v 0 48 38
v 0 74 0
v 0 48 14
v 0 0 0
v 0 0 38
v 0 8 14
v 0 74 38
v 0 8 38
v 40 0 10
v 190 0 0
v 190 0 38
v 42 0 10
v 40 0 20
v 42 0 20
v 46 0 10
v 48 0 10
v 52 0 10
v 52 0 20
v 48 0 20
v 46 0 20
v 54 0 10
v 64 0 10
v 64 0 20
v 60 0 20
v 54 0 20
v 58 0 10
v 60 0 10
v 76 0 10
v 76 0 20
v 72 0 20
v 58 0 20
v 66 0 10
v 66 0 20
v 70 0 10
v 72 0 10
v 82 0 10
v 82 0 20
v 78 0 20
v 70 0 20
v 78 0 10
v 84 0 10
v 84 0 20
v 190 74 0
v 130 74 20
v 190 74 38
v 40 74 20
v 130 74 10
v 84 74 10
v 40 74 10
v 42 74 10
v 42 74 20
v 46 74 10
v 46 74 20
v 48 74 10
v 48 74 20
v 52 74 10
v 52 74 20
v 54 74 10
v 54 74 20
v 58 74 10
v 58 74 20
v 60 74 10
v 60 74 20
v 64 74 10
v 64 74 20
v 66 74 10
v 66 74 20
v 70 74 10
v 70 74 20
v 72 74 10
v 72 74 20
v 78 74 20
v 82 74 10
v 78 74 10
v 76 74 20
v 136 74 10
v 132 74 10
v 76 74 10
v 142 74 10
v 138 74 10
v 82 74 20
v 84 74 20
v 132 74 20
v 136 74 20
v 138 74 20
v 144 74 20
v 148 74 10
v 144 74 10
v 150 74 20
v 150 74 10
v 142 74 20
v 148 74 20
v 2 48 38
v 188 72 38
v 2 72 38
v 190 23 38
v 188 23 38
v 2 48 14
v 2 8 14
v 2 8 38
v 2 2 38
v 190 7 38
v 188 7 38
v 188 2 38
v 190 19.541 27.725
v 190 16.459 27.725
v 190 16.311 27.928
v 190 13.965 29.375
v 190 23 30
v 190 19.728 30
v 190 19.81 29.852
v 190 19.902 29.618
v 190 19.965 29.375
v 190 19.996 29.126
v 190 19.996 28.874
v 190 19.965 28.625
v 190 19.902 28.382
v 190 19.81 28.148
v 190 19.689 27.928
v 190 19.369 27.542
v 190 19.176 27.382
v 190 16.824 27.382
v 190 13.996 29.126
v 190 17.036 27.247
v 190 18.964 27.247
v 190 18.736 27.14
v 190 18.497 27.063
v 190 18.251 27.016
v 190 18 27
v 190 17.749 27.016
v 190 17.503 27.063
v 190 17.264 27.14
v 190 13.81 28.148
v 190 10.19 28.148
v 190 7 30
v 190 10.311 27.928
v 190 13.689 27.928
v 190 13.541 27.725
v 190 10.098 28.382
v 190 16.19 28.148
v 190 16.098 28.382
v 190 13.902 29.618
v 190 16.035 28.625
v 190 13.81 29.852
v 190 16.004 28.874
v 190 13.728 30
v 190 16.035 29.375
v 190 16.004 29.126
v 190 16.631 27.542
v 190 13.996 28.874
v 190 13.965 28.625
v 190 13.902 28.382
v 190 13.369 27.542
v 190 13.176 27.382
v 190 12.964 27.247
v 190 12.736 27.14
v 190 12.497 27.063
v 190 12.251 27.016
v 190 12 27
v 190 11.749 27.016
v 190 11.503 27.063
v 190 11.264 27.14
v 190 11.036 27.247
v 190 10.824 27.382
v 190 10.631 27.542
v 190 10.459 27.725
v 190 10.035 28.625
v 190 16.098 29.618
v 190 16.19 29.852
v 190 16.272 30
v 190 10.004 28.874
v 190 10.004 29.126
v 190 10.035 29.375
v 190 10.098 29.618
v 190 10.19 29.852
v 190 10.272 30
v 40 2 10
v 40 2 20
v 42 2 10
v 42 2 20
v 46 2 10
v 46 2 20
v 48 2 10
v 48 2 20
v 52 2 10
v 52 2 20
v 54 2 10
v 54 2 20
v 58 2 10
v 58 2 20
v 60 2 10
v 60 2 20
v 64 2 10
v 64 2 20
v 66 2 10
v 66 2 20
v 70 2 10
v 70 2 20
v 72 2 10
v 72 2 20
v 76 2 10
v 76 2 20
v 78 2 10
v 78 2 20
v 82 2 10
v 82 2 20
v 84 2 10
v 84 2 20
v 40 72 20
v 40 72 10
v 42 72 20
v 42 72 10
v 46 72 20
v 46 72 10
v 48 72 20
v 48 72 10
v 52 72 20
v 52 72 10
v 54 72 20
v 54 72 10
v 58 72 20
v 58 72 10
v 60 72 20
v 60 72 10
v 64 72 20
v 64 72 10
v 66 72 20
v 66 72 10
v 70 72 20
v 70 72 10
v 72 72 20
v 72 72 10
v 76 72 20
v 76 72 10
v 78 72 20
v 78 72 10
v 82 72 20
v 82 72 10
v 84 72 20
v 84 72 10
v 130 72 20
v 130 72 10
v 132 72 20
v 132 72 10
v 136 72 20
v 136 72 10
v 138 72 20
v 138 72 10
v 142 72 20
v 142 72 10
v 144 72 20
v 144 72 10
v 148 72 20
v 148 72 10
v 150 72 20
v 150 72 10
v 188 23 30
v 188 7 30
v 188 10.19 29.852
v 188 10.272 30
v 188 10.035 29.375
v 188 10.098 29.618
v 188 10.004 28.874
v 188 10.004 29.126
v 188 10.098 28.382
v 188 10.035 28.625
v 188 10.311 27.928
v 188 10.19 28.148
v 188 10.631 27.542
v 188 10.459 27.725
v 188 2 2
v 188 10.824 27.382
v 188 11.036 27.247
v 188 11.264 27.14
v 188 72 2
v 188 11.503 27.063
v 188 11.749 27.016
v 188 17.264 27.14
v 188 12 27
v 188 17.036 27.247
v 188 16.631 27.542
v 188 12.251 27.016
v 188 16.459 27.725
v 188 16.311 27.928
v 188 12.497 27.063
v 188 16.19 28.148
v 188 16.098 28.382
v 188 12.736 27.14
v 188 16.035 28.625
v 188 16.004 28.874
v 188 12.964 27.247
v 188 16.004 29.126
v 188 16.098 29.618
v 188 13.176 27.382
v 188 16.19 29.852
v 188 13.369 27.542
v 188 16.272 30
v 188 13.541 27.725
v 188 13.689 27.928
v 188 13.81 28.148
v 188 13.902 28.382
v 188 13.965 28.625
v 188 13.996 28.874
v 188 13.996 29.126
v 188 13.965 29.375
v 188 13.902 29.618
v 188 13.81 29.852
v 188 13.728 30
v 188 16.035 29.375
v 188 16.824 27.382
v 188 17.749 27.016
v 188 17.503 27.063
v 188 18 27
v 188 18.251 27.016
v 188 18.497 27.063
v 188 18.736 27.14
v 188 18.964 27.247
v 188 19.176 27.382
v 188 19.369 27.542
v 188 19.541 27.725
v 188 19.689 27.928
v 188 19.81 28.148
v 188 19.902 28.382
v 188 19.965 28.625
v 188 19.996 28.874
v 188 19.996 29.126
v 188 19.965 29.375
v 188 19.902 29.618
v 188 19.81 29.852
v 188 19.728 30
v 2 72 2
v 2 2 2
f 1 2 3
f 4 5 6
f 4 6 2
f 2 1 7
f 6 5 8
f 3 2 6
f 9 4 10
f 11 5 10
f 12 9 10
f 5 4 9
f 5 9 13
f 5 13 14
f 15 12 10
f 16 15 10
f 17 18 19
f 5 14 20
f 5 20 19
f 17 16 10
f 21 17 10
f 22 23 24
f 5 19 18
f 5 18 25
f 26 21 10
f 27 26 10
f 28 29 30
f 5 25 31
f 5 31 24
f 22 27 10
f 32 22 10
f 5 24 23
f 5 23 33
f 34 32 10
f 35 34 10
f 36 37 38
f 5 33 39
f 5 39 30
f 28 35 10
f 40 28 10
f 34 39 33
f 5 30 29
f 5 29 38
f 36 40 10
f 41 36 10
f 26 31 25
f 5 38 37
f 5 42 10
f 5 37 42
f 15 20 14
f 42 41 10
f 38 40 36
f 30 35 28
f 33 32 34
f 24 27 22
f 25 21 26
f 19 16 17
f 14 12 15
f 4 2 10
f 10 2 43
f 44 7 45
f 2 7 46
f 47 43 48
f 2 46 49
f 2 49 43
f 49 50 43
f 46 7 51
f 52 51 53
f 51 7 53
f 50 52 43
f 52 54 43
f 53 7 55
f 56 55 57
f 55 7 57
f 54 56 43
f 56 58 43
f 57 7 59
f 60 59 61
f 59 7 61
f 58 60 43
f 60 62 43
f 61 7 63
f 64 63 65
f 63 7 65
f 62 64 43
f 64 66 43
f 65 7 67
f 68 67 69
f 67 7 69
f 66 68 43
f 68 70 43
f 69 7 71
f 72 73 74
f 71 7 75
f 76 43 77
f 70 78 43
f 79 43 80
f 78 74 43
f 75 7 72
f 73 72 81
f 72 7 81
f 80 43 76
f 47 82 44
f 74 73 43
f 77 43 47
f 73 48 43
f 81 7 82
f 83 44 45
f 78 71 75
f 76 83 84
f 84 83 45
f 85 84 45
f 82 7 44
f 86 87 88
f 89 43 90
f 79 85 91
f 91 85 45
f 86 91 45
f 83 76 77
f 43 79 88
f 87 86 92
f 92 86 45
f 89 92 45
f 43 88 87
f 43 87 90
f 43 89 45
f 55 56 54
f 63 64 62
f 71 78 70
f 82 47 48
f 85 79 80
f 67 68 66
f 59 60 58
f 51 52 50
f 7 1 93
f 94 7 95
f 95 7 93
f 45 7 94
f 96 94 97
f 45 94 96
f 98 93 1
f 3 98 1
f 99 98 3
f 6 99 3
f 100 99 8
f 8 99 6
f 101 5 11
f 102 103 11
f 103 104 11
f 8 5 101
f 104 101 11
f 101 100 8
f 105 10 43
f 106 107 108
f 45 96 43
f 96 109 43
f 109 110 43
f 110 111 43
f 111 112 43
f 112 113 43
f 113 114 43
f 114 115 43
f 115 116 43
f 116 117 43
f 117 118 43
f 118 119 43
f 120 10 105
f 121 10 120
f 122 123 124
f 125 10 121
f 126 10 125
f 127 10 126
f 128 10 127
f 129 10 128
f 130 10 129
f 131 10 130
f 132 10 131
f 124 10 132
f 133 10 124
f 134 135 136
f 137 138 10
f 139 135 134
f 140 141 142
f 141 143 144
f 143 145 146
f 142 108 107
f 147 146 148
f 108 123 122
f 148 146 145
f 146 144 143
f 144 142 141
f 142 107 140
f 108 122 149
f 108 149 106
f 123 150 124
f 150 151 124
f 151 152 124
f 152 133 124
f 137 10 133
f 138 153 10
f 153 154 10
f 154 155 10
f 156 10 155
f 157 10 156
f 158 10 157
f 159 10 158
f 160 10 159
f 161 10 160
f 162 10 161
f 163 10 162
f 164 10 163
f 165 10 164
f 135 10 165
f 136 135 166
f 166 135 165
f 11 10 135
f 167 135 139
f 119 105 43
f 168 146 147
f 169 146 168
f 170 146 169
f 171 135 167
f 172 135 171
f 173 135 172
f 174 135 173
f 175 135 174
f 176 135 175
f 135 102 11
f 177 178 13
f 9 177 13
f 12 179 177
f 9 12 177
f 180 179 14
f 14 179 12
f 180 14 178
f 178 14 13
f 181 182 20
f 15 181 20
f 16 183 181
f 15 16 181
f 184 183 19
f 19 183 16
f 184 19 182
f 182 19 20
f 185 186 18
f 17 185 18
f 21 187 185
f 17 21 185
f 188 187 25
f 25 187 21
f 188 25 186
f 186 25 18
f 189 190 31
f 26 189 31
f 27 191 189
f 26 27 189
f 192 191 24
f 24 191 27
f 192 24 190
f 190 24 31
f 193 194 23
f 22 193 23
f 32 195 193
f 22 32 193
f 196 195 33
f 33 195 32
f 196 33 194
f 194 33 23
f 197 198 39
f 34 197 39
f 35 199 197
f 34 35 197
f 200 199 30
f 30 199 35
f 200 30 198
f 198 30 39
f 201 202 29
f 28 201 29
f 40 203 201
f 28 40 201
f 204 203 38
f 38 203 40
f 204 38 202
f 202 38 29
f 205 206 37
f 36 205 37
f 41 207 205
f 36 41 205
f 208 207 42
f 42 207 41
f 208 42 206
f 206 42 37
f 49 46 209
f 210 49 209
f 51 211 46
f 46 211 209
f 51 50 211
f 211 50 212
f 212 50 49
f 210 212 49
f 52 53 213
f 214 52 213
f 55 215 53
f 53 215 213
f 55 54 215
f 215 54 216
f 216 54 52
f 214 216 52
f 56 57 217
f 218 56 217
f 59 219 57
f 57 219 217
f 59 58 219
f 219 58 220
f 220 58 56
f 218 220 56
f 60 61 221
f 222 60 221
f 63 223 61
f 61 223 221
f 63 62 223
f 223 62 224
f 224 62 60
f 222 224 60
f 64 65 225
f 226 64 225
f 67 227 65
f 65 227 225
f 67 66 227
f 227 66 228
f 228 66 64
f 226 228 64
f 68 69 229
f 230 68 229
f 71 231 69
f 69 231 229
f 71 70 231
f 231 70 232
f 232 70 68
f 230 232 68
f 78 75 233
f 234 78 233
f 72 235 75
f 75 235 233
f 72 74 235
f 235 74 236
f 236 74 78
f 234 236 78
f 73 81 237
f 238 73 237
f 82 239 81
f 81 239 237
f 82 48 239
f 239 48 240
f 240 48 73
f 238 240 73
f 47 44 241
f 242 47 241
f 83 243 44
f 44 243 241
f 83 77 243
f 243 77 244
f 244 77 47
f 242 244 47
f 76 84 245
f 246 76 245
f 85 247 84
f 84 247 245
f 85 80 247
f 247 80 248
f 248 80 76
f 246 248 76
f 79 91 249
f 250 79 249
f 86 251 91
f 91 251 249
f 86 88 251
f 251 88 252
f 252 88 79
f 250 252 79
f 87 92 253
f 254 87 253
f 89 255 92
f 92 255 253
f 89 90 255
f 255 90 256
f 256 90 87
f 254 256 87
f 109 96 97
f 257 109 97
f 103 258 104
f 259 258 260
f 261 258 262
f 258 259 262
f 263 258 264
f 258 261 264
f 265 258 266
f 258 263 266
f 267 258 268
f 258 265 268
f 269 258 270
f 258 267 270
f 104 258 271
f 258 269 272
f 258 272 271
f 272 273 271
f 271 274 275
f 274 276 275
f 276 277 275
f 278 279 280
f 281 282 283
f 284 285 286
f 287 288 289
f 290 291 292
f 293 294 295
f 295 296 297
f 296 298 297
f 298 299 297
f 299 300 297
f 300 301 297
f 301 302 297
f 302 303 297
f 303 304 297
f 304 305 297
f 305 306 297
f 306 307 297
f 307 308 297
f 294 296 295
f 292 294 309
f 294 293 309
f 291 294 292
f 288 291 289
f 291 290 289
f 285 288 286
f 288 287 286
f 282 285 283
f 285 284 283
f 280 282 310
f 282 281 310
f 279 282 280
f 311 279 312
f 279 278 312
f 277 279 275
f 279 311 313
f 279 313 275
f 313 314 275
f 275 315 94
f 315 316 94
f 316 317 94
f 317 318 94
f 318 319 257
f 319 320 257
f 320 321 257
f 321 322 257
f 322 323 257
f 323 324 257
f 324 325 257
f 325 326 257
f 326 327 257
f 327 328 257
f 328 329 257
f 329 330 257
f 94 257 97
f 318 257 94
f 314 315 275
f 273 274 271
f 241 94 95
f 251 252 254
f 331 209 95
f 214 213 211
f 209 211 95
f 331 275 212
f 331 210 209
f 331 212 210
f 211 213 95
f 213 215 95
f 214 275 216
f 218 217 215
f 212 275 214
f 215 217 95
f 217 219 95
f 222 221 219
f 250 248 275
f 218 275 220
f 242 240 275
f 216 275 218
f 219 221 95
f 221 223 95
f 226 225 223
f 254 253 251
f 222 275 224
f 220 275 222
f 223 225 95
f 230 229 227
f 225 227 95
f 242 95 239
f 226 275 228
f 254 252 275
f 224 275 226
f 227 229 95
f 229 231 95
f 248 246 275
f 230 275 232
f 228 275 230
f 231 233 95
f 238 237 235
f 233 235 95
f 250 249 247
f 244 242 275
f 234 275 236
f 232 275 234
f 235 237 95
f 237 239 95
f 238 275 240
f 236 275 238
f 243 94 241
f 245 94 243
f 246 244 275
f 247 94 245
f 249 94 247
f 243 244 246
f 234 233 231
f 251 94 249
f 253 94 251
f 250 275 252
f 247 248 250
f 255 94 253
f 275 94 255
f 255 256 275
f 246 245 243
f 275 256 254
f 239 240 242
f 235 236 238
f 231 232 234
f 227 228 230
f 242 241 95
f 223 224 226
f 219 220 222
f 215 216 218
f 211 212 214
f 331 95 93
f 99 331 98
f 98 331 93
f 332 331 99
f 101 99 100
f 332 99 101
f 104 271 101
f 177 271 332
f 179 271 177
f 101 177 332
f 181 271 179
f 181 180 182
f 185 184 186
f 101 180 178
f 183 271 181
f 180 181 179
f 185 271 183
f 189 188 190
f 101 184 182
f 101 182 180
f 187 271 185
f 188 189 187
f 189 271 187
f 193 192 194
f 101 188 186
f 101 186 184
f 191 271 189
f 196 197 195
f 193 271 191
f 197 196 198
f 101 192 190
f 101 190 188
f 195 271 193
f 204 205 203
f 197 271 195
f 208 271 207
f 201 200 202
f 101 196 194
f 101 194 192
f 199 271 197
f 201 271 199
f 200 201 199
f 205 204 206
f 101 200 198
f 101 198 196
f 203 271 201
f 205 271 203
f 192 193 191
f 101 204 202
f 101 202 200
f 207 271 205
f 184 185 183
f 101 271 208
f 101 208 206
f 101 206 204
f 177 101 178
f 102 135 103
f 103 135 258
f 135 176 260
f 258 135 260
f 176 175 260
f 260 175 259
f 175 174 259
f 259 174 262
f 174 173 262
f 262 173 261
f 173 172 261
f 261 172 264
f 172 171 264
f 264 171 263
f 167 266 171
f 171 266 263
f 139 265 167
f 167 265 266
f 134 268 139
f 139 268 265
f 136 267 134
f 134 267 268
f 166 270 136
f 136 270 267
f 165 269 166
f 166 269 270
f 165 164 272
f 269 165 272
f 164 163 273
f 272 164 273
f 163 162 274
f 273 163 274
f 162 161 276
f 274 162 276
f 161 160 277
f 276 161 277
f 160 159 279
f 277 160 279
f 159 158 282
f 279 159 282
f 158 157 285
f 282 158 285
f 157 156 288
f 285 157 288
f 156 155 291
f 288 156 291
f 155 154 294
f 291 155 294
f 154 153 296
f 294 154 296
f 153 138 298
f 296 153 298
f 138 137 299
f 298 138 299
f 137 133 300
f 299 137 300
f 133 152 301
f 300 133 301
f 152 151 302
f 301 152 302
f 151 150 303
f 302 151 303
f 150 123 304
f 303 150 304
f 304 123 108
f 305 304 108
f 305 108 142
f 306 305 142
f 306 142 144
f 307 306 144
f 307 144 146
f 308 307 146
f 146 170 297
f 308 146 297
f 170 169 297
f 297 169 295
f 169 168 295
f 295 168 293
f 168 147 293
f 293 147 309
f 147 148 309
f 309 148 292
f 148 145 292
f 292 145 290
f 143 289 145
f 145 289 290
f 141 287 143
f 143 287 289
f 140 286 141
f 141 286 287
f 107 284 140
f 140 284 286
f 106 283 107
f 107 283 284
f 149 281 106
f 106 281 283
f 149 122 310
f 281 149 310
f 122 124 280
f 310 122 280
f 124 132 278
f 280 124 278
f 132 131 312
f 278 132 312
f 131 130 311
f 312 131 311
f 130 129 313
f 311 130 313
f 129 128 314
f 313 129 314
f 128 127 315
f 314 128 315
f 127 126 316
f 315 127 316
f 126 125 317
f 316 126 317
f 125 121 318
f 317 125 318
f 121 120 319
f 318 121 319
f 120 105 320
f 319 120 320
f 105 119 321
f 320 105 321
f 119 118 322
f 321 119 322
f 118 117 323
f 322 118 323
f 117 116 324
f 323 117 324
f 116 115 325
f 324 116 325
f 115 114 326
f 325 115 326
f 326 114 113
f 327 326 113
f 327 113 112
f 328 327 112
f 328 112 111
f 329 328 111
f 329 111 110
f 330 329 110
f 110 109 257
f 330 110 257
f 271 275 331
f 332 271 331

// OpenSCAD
// Flipdot Display 
// Cover of 3D Printed Casing
// RasperryPi B + Voltage Regulator Board
// CC4.0-BY SA NC   surasto.de

difference() {
    cube(size=[190,74,38]);
    translate([2,2,2]) cube(size=[190-4,74-4,40]);

    translate([-5,8,38-24]) cube(size=[10,40,40]);

    translate([185,7,38-8]) cube(size=[10,16,40]);

    translate([185,12,38-9]) rotate([0,90,0]) cylinder(r=2,h=10,$fn=50);
    translate([185,18,38-9]) rotate([0,90,0]) cylinder(r=2,h=10,$fn=50);

    translate([40,-10,10]) cube(size=[2,100,10]);
    translate([46,-10,10]) cube(size=[2,100,10]);    
    translate([52,-10,10]) cube(size=[2,100,10]);    
    translate([58,-10,10]) cube(size=[2,100,10]);
    translate([64,-10,10]) cube(size=[2,100,10]);   
    translate([70,-10,10]) cube(size=[2,100,10]);   
    translate([76,-10,10]) cube(size=[2,100,10]);
    translate([82,-10,10]) cube(size=[2,100,10]);

    translate([130,70,10]) cube(size=[2,10,10]);   
    translate([136,70,10]) cube(size=[2,10,10]);   
    translate([142,70,10]) cube(size=[2,10,10]);
    translate([148,70,10]) cube(size=[2,10,10]);
}
